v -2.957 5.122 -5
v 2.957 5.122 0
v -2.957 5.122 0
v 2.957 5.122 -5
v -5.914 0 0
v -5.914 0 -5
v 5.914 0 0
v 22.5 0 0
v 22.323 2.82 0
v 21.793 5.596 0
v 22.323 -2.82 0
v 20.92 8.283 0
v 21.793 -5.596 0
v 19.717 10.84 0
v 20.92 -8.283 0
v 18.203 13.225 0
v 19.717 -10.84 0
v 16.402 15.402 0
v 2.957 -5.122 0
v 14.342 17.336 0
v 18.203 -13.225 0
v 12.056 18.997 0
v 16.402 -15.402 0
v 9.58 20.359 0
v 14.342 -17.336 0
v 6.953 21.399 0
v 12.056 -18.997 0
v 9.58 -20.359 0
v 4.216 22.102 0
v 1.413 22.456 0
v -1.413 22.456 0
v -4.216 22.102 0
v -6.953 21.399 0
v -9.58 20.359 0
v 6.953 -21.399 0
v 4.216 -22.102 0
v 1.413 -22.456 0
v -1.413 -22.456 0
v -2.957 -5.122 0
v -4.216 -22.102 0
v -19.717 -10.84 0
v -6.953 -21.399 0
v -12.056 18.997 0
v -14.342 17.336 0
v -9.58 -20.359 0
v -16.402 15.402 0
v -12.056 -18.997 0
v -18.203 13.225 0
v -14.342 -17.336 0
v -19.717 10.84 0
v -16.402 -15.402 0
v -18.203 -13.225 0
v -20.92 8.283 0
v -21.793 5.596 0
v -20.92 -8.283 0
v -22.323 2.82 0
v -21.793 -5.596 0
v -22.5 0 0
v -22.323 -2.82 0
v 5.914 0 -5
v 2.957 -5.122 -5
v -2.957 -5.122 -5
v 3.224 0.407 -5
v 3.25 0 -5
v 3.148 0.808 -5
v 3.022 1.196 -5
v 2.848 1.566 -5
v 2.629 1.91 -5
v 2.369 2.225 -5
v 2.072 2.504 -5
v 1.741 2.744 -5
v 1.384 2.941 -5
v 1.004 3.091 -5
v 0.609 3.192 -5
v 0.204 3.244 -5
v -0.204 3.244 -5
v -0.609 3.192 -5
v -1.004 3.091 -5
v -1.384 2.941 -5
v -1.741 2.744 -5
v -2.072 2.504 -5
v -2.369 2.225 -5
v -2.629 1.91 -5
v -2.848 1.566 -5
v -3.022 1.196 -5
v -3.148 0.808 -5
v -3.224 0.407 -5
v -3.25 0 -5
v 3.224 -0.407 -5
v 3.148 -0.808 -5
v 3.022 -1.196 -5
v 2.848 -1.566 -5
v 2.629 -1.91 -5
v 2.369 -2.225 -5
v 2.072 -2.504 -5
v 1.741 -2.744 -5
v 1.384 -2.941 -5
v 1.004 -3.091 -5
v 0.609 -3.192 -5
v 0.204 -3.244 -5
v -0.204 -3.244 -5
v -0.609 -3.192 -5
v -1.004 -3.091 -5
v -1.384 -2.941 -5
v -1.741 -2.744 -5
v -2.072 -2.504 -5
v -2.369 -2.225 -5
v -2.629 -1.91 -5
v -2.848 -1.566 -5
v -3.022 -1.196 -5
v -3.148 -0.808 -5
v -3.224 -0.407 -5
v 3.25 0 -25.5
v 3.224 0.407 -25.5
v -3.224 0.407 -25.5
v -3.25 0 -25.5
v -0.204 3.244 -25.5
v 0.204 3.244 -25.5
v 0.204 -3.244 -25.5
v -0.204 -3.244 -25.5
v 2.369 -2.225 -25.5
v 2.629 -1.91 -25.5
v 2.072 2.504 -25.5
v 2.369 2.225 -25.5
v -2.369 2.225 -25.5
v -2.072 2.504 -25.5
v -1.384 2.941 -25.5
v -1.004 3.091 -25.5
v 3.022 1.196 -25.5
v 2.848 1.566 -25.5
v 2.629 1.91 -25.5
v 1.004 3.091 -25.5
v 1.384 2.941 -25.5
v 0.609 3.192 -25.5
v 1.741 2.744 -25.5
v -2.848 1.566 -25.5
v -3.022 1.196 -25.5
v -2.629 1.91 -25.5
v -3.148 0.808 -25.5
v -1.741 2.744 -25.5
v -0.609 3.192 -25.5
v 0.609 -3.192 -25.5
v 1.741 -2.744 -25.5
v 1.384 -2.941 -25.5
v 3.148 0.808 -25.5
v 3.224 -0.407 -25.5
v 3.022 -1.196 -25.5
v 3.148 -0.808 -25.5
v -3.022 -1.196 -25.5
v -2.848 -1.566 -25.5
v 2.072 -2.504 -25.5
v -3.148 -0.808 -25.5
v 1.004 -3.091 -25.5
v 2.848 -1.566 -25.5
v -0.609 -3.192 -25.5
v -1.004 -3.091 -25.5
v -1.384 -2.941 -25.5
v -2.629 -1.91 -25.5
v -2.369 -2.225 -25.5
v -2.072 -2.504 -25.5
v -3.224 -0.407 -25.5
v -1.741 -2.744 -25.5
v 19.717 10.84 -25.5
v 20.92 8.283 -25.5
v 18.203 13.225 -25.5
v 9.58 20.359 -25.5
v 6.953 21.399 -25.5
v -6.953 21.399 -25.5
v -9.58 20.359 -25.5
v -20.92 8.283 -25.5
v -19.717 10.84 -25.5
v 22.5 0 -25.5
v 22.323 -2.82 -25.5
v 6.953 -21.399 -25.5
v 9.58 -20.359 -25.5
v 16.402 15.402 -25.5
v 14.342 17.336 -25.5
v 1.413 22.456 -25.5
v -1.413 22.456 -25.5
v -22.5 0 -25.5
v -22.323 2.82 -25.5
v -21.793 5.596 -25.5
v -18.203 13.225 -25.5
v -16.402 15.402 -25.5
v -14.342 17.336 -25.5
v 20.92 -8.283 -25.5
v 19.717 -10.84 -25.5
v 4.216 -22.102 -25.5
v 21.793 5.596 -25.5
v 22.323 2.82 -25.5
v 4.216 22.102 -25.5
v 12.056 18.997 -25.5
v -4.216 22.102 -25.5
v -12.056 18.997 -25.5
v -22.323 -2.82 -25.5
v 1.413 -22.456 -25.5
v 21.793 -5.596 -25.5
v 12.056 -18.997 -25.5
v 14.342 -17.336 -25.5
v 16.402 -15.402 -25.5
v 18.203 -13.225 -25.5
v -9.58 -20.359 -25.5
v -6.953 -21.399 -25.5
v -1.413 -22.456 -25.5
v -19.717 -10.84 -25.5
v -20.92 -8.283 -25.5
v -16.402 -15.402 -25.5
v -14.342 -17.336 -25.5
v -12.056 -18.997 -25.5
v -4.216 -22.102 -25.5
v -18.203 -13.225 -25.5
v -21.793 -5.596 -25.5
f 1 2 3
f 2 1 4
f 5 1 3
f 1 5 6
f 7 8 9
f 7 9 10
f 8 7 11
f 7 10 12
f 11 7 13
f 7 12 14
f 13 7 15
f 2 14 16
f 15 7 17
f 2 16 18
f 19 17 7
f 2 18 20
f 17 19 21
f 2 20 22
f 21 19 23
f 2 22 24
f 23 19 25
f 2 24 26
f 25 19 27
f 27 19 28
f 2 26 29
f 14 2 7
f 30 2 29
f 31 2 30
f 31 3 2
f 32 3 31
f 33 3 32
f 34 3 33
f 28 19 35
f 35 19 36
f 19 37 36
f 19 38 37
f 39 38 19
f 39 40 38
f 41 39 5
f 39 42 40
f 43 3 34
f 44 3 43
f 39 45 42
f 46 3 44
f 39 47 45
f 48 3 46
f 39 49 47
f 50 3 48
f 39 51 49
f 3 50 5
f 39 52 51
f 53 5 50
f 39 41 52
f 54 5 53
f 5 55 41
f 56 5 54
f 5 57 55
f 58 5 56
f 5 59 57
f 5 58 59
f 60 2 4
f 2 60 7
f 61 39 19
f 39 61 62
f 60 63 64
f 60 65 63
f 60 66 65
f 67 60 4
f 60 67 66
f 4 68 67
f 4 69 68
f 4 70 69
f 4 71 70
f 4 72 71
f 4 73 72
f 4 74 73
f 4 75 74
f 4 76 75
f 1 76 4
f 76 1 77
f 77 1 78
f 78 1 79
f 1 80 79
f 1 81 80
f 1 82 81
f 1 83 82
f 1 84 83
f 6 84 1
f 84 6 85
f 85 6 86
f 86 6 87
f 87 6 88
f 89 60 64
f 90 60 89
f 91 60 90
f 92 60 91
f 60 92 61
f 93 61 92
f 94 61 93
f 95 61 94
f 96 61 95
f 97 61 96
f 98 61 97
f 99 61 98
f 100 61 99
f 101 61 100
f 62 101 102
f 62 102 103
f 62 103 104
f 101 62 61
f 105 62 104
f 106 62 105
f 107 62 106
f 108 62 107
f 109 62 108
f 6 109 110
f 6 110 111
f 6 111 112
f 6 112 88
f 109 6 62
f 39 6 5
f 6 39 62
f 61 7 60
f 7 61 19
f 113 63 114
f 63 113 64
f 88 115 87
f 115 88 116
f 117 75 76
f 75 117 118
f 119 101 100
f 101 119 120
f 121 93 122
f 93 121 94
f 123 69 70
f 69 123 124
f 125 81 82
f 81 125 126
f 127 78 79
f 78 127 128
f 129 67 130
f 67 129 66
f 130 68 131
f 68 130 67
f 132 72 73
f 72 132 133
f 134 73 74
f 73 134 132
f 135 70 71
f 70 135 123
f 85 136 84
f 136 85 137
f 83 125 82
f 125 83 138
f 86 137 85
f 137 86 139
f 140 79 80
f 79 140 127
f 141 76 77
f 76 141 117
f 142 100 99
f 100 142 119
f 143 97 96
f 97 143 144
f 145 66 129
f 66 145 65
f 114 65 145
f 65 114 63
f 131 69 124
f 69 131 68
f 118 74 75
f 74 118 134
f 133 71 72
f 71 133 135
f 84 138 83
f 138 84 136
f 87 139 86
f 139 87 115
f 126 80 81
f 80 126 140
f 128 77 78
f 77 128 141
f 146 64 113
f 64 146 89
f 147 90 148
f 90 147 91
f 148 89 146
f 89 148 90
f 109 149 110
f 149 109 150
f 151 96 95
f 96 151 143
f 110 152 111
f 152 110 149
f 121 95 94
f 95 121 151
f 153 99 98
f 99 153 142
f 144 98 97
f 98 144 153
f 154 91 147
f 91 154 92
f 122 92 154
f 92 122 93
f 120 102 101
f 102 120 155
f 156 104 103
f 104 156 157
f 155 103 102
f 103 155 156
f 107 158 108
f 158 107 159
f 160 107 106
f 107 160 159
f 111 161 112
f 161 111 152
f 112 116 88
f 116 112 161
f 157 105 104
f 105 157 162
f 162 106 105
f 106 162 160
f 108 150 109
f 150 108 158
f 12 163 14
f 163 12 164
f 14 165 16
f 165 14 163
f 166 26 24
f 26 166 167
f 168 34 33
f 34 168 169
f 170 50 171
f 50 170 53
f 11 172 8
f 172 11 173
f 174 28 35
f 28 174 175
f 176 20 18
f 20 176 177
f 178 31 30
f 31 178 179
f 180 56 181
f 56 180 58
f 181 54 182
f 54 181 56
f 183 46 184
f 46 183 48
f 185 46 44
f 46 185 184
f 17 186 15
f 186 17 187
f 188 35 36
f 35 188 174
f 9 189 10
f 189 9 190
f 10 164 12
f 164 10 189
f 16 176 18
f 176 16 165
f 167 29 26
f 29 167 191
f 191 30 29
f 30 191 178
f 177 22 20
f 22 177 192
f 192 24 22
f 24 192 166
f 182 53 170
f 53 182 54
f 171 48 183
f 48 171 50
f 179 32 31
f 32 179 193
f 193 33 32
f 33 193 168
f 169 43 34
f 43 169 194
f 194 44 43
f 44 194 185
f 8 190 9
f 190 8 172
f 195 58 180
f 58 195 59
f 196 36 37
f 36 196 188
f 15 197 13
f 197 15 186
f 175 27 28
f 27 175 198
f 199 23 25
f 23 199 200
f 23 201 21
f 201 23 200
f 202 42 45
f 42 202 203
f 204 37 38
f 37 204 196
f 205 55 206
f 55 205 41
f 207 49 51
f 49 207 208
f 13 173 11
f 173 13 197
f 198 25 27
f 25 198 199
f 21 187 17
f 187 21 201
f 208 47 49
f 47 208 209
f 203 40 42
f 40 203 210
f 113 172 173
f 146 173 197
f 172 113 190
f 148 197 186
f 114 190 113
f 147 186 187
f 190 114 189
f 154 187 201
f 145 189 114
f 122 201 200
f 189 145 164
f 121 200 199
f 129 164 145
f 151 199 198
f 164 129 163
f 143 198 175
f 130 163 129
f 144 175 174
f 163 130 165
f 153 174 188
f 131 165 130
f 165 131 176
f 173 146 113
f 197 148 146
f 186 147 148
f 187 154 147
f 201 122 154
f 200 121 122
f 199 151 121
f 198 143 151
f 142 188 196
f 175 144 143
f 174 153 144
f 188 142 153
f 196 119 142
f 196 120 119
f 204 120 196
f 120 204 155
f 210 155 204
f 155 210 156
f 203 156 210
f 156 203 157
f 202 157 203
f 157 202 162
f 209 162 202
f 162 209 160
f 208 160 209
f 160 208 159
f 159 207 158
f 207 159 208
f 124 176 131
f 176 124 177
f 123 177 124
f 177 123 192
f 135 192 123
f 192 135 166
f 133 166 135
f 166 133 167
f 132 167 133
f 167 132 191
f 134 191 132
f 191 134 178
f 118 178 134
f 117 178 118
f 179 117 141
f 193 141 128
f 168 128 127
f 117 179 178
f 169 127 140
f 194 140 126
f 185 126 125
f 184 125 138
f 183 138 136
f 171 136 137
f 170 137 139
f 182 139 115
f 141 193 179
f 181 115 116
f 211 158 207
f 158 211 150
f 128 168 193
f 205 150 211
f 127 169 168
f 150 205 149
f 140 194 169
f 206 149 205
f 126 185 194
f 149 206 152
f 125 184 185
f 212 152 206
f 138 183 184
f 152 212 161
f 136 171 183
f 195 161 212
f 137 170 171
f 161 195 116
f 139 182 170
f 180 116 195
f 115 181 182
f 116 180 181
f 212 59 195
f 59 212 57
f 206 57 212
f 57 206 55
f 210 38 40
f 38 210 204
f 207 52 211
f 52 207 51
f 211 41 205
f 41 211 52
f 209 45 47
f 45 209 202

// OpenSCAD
$fn = 50;

difference() {
	union() {
		translate(v = [0, 0, -25.5]) {
			cylinder(h = 25.5, r = 22.5);
		}
	}
	union() {
		translate(v = [0, 0, 0]) {
			rotate(a = [0, 0, 0]) {
				difference() {
					union() {
						translate(v = [0, 0, -5]) {
							linear_extrude(height = 5) {
								polygon(points = [[5.914249999999999, 0.0], [2.957125, 5.1218907443321156], [-2.9571249999999982, 5.1218907443321156], [-5.914249999999999, 7.242867331857232e-16], [-2.9571250000000022, -5.121890744332115], [2.9571249999999956, -5.121890744332118]]);
							}
						}
					}
					union();
				}
			}
		}
		#translate(v = [0, 0, -100.0]) {
			cylinder(h = 200, r = 3.25);
		}
	}
}
